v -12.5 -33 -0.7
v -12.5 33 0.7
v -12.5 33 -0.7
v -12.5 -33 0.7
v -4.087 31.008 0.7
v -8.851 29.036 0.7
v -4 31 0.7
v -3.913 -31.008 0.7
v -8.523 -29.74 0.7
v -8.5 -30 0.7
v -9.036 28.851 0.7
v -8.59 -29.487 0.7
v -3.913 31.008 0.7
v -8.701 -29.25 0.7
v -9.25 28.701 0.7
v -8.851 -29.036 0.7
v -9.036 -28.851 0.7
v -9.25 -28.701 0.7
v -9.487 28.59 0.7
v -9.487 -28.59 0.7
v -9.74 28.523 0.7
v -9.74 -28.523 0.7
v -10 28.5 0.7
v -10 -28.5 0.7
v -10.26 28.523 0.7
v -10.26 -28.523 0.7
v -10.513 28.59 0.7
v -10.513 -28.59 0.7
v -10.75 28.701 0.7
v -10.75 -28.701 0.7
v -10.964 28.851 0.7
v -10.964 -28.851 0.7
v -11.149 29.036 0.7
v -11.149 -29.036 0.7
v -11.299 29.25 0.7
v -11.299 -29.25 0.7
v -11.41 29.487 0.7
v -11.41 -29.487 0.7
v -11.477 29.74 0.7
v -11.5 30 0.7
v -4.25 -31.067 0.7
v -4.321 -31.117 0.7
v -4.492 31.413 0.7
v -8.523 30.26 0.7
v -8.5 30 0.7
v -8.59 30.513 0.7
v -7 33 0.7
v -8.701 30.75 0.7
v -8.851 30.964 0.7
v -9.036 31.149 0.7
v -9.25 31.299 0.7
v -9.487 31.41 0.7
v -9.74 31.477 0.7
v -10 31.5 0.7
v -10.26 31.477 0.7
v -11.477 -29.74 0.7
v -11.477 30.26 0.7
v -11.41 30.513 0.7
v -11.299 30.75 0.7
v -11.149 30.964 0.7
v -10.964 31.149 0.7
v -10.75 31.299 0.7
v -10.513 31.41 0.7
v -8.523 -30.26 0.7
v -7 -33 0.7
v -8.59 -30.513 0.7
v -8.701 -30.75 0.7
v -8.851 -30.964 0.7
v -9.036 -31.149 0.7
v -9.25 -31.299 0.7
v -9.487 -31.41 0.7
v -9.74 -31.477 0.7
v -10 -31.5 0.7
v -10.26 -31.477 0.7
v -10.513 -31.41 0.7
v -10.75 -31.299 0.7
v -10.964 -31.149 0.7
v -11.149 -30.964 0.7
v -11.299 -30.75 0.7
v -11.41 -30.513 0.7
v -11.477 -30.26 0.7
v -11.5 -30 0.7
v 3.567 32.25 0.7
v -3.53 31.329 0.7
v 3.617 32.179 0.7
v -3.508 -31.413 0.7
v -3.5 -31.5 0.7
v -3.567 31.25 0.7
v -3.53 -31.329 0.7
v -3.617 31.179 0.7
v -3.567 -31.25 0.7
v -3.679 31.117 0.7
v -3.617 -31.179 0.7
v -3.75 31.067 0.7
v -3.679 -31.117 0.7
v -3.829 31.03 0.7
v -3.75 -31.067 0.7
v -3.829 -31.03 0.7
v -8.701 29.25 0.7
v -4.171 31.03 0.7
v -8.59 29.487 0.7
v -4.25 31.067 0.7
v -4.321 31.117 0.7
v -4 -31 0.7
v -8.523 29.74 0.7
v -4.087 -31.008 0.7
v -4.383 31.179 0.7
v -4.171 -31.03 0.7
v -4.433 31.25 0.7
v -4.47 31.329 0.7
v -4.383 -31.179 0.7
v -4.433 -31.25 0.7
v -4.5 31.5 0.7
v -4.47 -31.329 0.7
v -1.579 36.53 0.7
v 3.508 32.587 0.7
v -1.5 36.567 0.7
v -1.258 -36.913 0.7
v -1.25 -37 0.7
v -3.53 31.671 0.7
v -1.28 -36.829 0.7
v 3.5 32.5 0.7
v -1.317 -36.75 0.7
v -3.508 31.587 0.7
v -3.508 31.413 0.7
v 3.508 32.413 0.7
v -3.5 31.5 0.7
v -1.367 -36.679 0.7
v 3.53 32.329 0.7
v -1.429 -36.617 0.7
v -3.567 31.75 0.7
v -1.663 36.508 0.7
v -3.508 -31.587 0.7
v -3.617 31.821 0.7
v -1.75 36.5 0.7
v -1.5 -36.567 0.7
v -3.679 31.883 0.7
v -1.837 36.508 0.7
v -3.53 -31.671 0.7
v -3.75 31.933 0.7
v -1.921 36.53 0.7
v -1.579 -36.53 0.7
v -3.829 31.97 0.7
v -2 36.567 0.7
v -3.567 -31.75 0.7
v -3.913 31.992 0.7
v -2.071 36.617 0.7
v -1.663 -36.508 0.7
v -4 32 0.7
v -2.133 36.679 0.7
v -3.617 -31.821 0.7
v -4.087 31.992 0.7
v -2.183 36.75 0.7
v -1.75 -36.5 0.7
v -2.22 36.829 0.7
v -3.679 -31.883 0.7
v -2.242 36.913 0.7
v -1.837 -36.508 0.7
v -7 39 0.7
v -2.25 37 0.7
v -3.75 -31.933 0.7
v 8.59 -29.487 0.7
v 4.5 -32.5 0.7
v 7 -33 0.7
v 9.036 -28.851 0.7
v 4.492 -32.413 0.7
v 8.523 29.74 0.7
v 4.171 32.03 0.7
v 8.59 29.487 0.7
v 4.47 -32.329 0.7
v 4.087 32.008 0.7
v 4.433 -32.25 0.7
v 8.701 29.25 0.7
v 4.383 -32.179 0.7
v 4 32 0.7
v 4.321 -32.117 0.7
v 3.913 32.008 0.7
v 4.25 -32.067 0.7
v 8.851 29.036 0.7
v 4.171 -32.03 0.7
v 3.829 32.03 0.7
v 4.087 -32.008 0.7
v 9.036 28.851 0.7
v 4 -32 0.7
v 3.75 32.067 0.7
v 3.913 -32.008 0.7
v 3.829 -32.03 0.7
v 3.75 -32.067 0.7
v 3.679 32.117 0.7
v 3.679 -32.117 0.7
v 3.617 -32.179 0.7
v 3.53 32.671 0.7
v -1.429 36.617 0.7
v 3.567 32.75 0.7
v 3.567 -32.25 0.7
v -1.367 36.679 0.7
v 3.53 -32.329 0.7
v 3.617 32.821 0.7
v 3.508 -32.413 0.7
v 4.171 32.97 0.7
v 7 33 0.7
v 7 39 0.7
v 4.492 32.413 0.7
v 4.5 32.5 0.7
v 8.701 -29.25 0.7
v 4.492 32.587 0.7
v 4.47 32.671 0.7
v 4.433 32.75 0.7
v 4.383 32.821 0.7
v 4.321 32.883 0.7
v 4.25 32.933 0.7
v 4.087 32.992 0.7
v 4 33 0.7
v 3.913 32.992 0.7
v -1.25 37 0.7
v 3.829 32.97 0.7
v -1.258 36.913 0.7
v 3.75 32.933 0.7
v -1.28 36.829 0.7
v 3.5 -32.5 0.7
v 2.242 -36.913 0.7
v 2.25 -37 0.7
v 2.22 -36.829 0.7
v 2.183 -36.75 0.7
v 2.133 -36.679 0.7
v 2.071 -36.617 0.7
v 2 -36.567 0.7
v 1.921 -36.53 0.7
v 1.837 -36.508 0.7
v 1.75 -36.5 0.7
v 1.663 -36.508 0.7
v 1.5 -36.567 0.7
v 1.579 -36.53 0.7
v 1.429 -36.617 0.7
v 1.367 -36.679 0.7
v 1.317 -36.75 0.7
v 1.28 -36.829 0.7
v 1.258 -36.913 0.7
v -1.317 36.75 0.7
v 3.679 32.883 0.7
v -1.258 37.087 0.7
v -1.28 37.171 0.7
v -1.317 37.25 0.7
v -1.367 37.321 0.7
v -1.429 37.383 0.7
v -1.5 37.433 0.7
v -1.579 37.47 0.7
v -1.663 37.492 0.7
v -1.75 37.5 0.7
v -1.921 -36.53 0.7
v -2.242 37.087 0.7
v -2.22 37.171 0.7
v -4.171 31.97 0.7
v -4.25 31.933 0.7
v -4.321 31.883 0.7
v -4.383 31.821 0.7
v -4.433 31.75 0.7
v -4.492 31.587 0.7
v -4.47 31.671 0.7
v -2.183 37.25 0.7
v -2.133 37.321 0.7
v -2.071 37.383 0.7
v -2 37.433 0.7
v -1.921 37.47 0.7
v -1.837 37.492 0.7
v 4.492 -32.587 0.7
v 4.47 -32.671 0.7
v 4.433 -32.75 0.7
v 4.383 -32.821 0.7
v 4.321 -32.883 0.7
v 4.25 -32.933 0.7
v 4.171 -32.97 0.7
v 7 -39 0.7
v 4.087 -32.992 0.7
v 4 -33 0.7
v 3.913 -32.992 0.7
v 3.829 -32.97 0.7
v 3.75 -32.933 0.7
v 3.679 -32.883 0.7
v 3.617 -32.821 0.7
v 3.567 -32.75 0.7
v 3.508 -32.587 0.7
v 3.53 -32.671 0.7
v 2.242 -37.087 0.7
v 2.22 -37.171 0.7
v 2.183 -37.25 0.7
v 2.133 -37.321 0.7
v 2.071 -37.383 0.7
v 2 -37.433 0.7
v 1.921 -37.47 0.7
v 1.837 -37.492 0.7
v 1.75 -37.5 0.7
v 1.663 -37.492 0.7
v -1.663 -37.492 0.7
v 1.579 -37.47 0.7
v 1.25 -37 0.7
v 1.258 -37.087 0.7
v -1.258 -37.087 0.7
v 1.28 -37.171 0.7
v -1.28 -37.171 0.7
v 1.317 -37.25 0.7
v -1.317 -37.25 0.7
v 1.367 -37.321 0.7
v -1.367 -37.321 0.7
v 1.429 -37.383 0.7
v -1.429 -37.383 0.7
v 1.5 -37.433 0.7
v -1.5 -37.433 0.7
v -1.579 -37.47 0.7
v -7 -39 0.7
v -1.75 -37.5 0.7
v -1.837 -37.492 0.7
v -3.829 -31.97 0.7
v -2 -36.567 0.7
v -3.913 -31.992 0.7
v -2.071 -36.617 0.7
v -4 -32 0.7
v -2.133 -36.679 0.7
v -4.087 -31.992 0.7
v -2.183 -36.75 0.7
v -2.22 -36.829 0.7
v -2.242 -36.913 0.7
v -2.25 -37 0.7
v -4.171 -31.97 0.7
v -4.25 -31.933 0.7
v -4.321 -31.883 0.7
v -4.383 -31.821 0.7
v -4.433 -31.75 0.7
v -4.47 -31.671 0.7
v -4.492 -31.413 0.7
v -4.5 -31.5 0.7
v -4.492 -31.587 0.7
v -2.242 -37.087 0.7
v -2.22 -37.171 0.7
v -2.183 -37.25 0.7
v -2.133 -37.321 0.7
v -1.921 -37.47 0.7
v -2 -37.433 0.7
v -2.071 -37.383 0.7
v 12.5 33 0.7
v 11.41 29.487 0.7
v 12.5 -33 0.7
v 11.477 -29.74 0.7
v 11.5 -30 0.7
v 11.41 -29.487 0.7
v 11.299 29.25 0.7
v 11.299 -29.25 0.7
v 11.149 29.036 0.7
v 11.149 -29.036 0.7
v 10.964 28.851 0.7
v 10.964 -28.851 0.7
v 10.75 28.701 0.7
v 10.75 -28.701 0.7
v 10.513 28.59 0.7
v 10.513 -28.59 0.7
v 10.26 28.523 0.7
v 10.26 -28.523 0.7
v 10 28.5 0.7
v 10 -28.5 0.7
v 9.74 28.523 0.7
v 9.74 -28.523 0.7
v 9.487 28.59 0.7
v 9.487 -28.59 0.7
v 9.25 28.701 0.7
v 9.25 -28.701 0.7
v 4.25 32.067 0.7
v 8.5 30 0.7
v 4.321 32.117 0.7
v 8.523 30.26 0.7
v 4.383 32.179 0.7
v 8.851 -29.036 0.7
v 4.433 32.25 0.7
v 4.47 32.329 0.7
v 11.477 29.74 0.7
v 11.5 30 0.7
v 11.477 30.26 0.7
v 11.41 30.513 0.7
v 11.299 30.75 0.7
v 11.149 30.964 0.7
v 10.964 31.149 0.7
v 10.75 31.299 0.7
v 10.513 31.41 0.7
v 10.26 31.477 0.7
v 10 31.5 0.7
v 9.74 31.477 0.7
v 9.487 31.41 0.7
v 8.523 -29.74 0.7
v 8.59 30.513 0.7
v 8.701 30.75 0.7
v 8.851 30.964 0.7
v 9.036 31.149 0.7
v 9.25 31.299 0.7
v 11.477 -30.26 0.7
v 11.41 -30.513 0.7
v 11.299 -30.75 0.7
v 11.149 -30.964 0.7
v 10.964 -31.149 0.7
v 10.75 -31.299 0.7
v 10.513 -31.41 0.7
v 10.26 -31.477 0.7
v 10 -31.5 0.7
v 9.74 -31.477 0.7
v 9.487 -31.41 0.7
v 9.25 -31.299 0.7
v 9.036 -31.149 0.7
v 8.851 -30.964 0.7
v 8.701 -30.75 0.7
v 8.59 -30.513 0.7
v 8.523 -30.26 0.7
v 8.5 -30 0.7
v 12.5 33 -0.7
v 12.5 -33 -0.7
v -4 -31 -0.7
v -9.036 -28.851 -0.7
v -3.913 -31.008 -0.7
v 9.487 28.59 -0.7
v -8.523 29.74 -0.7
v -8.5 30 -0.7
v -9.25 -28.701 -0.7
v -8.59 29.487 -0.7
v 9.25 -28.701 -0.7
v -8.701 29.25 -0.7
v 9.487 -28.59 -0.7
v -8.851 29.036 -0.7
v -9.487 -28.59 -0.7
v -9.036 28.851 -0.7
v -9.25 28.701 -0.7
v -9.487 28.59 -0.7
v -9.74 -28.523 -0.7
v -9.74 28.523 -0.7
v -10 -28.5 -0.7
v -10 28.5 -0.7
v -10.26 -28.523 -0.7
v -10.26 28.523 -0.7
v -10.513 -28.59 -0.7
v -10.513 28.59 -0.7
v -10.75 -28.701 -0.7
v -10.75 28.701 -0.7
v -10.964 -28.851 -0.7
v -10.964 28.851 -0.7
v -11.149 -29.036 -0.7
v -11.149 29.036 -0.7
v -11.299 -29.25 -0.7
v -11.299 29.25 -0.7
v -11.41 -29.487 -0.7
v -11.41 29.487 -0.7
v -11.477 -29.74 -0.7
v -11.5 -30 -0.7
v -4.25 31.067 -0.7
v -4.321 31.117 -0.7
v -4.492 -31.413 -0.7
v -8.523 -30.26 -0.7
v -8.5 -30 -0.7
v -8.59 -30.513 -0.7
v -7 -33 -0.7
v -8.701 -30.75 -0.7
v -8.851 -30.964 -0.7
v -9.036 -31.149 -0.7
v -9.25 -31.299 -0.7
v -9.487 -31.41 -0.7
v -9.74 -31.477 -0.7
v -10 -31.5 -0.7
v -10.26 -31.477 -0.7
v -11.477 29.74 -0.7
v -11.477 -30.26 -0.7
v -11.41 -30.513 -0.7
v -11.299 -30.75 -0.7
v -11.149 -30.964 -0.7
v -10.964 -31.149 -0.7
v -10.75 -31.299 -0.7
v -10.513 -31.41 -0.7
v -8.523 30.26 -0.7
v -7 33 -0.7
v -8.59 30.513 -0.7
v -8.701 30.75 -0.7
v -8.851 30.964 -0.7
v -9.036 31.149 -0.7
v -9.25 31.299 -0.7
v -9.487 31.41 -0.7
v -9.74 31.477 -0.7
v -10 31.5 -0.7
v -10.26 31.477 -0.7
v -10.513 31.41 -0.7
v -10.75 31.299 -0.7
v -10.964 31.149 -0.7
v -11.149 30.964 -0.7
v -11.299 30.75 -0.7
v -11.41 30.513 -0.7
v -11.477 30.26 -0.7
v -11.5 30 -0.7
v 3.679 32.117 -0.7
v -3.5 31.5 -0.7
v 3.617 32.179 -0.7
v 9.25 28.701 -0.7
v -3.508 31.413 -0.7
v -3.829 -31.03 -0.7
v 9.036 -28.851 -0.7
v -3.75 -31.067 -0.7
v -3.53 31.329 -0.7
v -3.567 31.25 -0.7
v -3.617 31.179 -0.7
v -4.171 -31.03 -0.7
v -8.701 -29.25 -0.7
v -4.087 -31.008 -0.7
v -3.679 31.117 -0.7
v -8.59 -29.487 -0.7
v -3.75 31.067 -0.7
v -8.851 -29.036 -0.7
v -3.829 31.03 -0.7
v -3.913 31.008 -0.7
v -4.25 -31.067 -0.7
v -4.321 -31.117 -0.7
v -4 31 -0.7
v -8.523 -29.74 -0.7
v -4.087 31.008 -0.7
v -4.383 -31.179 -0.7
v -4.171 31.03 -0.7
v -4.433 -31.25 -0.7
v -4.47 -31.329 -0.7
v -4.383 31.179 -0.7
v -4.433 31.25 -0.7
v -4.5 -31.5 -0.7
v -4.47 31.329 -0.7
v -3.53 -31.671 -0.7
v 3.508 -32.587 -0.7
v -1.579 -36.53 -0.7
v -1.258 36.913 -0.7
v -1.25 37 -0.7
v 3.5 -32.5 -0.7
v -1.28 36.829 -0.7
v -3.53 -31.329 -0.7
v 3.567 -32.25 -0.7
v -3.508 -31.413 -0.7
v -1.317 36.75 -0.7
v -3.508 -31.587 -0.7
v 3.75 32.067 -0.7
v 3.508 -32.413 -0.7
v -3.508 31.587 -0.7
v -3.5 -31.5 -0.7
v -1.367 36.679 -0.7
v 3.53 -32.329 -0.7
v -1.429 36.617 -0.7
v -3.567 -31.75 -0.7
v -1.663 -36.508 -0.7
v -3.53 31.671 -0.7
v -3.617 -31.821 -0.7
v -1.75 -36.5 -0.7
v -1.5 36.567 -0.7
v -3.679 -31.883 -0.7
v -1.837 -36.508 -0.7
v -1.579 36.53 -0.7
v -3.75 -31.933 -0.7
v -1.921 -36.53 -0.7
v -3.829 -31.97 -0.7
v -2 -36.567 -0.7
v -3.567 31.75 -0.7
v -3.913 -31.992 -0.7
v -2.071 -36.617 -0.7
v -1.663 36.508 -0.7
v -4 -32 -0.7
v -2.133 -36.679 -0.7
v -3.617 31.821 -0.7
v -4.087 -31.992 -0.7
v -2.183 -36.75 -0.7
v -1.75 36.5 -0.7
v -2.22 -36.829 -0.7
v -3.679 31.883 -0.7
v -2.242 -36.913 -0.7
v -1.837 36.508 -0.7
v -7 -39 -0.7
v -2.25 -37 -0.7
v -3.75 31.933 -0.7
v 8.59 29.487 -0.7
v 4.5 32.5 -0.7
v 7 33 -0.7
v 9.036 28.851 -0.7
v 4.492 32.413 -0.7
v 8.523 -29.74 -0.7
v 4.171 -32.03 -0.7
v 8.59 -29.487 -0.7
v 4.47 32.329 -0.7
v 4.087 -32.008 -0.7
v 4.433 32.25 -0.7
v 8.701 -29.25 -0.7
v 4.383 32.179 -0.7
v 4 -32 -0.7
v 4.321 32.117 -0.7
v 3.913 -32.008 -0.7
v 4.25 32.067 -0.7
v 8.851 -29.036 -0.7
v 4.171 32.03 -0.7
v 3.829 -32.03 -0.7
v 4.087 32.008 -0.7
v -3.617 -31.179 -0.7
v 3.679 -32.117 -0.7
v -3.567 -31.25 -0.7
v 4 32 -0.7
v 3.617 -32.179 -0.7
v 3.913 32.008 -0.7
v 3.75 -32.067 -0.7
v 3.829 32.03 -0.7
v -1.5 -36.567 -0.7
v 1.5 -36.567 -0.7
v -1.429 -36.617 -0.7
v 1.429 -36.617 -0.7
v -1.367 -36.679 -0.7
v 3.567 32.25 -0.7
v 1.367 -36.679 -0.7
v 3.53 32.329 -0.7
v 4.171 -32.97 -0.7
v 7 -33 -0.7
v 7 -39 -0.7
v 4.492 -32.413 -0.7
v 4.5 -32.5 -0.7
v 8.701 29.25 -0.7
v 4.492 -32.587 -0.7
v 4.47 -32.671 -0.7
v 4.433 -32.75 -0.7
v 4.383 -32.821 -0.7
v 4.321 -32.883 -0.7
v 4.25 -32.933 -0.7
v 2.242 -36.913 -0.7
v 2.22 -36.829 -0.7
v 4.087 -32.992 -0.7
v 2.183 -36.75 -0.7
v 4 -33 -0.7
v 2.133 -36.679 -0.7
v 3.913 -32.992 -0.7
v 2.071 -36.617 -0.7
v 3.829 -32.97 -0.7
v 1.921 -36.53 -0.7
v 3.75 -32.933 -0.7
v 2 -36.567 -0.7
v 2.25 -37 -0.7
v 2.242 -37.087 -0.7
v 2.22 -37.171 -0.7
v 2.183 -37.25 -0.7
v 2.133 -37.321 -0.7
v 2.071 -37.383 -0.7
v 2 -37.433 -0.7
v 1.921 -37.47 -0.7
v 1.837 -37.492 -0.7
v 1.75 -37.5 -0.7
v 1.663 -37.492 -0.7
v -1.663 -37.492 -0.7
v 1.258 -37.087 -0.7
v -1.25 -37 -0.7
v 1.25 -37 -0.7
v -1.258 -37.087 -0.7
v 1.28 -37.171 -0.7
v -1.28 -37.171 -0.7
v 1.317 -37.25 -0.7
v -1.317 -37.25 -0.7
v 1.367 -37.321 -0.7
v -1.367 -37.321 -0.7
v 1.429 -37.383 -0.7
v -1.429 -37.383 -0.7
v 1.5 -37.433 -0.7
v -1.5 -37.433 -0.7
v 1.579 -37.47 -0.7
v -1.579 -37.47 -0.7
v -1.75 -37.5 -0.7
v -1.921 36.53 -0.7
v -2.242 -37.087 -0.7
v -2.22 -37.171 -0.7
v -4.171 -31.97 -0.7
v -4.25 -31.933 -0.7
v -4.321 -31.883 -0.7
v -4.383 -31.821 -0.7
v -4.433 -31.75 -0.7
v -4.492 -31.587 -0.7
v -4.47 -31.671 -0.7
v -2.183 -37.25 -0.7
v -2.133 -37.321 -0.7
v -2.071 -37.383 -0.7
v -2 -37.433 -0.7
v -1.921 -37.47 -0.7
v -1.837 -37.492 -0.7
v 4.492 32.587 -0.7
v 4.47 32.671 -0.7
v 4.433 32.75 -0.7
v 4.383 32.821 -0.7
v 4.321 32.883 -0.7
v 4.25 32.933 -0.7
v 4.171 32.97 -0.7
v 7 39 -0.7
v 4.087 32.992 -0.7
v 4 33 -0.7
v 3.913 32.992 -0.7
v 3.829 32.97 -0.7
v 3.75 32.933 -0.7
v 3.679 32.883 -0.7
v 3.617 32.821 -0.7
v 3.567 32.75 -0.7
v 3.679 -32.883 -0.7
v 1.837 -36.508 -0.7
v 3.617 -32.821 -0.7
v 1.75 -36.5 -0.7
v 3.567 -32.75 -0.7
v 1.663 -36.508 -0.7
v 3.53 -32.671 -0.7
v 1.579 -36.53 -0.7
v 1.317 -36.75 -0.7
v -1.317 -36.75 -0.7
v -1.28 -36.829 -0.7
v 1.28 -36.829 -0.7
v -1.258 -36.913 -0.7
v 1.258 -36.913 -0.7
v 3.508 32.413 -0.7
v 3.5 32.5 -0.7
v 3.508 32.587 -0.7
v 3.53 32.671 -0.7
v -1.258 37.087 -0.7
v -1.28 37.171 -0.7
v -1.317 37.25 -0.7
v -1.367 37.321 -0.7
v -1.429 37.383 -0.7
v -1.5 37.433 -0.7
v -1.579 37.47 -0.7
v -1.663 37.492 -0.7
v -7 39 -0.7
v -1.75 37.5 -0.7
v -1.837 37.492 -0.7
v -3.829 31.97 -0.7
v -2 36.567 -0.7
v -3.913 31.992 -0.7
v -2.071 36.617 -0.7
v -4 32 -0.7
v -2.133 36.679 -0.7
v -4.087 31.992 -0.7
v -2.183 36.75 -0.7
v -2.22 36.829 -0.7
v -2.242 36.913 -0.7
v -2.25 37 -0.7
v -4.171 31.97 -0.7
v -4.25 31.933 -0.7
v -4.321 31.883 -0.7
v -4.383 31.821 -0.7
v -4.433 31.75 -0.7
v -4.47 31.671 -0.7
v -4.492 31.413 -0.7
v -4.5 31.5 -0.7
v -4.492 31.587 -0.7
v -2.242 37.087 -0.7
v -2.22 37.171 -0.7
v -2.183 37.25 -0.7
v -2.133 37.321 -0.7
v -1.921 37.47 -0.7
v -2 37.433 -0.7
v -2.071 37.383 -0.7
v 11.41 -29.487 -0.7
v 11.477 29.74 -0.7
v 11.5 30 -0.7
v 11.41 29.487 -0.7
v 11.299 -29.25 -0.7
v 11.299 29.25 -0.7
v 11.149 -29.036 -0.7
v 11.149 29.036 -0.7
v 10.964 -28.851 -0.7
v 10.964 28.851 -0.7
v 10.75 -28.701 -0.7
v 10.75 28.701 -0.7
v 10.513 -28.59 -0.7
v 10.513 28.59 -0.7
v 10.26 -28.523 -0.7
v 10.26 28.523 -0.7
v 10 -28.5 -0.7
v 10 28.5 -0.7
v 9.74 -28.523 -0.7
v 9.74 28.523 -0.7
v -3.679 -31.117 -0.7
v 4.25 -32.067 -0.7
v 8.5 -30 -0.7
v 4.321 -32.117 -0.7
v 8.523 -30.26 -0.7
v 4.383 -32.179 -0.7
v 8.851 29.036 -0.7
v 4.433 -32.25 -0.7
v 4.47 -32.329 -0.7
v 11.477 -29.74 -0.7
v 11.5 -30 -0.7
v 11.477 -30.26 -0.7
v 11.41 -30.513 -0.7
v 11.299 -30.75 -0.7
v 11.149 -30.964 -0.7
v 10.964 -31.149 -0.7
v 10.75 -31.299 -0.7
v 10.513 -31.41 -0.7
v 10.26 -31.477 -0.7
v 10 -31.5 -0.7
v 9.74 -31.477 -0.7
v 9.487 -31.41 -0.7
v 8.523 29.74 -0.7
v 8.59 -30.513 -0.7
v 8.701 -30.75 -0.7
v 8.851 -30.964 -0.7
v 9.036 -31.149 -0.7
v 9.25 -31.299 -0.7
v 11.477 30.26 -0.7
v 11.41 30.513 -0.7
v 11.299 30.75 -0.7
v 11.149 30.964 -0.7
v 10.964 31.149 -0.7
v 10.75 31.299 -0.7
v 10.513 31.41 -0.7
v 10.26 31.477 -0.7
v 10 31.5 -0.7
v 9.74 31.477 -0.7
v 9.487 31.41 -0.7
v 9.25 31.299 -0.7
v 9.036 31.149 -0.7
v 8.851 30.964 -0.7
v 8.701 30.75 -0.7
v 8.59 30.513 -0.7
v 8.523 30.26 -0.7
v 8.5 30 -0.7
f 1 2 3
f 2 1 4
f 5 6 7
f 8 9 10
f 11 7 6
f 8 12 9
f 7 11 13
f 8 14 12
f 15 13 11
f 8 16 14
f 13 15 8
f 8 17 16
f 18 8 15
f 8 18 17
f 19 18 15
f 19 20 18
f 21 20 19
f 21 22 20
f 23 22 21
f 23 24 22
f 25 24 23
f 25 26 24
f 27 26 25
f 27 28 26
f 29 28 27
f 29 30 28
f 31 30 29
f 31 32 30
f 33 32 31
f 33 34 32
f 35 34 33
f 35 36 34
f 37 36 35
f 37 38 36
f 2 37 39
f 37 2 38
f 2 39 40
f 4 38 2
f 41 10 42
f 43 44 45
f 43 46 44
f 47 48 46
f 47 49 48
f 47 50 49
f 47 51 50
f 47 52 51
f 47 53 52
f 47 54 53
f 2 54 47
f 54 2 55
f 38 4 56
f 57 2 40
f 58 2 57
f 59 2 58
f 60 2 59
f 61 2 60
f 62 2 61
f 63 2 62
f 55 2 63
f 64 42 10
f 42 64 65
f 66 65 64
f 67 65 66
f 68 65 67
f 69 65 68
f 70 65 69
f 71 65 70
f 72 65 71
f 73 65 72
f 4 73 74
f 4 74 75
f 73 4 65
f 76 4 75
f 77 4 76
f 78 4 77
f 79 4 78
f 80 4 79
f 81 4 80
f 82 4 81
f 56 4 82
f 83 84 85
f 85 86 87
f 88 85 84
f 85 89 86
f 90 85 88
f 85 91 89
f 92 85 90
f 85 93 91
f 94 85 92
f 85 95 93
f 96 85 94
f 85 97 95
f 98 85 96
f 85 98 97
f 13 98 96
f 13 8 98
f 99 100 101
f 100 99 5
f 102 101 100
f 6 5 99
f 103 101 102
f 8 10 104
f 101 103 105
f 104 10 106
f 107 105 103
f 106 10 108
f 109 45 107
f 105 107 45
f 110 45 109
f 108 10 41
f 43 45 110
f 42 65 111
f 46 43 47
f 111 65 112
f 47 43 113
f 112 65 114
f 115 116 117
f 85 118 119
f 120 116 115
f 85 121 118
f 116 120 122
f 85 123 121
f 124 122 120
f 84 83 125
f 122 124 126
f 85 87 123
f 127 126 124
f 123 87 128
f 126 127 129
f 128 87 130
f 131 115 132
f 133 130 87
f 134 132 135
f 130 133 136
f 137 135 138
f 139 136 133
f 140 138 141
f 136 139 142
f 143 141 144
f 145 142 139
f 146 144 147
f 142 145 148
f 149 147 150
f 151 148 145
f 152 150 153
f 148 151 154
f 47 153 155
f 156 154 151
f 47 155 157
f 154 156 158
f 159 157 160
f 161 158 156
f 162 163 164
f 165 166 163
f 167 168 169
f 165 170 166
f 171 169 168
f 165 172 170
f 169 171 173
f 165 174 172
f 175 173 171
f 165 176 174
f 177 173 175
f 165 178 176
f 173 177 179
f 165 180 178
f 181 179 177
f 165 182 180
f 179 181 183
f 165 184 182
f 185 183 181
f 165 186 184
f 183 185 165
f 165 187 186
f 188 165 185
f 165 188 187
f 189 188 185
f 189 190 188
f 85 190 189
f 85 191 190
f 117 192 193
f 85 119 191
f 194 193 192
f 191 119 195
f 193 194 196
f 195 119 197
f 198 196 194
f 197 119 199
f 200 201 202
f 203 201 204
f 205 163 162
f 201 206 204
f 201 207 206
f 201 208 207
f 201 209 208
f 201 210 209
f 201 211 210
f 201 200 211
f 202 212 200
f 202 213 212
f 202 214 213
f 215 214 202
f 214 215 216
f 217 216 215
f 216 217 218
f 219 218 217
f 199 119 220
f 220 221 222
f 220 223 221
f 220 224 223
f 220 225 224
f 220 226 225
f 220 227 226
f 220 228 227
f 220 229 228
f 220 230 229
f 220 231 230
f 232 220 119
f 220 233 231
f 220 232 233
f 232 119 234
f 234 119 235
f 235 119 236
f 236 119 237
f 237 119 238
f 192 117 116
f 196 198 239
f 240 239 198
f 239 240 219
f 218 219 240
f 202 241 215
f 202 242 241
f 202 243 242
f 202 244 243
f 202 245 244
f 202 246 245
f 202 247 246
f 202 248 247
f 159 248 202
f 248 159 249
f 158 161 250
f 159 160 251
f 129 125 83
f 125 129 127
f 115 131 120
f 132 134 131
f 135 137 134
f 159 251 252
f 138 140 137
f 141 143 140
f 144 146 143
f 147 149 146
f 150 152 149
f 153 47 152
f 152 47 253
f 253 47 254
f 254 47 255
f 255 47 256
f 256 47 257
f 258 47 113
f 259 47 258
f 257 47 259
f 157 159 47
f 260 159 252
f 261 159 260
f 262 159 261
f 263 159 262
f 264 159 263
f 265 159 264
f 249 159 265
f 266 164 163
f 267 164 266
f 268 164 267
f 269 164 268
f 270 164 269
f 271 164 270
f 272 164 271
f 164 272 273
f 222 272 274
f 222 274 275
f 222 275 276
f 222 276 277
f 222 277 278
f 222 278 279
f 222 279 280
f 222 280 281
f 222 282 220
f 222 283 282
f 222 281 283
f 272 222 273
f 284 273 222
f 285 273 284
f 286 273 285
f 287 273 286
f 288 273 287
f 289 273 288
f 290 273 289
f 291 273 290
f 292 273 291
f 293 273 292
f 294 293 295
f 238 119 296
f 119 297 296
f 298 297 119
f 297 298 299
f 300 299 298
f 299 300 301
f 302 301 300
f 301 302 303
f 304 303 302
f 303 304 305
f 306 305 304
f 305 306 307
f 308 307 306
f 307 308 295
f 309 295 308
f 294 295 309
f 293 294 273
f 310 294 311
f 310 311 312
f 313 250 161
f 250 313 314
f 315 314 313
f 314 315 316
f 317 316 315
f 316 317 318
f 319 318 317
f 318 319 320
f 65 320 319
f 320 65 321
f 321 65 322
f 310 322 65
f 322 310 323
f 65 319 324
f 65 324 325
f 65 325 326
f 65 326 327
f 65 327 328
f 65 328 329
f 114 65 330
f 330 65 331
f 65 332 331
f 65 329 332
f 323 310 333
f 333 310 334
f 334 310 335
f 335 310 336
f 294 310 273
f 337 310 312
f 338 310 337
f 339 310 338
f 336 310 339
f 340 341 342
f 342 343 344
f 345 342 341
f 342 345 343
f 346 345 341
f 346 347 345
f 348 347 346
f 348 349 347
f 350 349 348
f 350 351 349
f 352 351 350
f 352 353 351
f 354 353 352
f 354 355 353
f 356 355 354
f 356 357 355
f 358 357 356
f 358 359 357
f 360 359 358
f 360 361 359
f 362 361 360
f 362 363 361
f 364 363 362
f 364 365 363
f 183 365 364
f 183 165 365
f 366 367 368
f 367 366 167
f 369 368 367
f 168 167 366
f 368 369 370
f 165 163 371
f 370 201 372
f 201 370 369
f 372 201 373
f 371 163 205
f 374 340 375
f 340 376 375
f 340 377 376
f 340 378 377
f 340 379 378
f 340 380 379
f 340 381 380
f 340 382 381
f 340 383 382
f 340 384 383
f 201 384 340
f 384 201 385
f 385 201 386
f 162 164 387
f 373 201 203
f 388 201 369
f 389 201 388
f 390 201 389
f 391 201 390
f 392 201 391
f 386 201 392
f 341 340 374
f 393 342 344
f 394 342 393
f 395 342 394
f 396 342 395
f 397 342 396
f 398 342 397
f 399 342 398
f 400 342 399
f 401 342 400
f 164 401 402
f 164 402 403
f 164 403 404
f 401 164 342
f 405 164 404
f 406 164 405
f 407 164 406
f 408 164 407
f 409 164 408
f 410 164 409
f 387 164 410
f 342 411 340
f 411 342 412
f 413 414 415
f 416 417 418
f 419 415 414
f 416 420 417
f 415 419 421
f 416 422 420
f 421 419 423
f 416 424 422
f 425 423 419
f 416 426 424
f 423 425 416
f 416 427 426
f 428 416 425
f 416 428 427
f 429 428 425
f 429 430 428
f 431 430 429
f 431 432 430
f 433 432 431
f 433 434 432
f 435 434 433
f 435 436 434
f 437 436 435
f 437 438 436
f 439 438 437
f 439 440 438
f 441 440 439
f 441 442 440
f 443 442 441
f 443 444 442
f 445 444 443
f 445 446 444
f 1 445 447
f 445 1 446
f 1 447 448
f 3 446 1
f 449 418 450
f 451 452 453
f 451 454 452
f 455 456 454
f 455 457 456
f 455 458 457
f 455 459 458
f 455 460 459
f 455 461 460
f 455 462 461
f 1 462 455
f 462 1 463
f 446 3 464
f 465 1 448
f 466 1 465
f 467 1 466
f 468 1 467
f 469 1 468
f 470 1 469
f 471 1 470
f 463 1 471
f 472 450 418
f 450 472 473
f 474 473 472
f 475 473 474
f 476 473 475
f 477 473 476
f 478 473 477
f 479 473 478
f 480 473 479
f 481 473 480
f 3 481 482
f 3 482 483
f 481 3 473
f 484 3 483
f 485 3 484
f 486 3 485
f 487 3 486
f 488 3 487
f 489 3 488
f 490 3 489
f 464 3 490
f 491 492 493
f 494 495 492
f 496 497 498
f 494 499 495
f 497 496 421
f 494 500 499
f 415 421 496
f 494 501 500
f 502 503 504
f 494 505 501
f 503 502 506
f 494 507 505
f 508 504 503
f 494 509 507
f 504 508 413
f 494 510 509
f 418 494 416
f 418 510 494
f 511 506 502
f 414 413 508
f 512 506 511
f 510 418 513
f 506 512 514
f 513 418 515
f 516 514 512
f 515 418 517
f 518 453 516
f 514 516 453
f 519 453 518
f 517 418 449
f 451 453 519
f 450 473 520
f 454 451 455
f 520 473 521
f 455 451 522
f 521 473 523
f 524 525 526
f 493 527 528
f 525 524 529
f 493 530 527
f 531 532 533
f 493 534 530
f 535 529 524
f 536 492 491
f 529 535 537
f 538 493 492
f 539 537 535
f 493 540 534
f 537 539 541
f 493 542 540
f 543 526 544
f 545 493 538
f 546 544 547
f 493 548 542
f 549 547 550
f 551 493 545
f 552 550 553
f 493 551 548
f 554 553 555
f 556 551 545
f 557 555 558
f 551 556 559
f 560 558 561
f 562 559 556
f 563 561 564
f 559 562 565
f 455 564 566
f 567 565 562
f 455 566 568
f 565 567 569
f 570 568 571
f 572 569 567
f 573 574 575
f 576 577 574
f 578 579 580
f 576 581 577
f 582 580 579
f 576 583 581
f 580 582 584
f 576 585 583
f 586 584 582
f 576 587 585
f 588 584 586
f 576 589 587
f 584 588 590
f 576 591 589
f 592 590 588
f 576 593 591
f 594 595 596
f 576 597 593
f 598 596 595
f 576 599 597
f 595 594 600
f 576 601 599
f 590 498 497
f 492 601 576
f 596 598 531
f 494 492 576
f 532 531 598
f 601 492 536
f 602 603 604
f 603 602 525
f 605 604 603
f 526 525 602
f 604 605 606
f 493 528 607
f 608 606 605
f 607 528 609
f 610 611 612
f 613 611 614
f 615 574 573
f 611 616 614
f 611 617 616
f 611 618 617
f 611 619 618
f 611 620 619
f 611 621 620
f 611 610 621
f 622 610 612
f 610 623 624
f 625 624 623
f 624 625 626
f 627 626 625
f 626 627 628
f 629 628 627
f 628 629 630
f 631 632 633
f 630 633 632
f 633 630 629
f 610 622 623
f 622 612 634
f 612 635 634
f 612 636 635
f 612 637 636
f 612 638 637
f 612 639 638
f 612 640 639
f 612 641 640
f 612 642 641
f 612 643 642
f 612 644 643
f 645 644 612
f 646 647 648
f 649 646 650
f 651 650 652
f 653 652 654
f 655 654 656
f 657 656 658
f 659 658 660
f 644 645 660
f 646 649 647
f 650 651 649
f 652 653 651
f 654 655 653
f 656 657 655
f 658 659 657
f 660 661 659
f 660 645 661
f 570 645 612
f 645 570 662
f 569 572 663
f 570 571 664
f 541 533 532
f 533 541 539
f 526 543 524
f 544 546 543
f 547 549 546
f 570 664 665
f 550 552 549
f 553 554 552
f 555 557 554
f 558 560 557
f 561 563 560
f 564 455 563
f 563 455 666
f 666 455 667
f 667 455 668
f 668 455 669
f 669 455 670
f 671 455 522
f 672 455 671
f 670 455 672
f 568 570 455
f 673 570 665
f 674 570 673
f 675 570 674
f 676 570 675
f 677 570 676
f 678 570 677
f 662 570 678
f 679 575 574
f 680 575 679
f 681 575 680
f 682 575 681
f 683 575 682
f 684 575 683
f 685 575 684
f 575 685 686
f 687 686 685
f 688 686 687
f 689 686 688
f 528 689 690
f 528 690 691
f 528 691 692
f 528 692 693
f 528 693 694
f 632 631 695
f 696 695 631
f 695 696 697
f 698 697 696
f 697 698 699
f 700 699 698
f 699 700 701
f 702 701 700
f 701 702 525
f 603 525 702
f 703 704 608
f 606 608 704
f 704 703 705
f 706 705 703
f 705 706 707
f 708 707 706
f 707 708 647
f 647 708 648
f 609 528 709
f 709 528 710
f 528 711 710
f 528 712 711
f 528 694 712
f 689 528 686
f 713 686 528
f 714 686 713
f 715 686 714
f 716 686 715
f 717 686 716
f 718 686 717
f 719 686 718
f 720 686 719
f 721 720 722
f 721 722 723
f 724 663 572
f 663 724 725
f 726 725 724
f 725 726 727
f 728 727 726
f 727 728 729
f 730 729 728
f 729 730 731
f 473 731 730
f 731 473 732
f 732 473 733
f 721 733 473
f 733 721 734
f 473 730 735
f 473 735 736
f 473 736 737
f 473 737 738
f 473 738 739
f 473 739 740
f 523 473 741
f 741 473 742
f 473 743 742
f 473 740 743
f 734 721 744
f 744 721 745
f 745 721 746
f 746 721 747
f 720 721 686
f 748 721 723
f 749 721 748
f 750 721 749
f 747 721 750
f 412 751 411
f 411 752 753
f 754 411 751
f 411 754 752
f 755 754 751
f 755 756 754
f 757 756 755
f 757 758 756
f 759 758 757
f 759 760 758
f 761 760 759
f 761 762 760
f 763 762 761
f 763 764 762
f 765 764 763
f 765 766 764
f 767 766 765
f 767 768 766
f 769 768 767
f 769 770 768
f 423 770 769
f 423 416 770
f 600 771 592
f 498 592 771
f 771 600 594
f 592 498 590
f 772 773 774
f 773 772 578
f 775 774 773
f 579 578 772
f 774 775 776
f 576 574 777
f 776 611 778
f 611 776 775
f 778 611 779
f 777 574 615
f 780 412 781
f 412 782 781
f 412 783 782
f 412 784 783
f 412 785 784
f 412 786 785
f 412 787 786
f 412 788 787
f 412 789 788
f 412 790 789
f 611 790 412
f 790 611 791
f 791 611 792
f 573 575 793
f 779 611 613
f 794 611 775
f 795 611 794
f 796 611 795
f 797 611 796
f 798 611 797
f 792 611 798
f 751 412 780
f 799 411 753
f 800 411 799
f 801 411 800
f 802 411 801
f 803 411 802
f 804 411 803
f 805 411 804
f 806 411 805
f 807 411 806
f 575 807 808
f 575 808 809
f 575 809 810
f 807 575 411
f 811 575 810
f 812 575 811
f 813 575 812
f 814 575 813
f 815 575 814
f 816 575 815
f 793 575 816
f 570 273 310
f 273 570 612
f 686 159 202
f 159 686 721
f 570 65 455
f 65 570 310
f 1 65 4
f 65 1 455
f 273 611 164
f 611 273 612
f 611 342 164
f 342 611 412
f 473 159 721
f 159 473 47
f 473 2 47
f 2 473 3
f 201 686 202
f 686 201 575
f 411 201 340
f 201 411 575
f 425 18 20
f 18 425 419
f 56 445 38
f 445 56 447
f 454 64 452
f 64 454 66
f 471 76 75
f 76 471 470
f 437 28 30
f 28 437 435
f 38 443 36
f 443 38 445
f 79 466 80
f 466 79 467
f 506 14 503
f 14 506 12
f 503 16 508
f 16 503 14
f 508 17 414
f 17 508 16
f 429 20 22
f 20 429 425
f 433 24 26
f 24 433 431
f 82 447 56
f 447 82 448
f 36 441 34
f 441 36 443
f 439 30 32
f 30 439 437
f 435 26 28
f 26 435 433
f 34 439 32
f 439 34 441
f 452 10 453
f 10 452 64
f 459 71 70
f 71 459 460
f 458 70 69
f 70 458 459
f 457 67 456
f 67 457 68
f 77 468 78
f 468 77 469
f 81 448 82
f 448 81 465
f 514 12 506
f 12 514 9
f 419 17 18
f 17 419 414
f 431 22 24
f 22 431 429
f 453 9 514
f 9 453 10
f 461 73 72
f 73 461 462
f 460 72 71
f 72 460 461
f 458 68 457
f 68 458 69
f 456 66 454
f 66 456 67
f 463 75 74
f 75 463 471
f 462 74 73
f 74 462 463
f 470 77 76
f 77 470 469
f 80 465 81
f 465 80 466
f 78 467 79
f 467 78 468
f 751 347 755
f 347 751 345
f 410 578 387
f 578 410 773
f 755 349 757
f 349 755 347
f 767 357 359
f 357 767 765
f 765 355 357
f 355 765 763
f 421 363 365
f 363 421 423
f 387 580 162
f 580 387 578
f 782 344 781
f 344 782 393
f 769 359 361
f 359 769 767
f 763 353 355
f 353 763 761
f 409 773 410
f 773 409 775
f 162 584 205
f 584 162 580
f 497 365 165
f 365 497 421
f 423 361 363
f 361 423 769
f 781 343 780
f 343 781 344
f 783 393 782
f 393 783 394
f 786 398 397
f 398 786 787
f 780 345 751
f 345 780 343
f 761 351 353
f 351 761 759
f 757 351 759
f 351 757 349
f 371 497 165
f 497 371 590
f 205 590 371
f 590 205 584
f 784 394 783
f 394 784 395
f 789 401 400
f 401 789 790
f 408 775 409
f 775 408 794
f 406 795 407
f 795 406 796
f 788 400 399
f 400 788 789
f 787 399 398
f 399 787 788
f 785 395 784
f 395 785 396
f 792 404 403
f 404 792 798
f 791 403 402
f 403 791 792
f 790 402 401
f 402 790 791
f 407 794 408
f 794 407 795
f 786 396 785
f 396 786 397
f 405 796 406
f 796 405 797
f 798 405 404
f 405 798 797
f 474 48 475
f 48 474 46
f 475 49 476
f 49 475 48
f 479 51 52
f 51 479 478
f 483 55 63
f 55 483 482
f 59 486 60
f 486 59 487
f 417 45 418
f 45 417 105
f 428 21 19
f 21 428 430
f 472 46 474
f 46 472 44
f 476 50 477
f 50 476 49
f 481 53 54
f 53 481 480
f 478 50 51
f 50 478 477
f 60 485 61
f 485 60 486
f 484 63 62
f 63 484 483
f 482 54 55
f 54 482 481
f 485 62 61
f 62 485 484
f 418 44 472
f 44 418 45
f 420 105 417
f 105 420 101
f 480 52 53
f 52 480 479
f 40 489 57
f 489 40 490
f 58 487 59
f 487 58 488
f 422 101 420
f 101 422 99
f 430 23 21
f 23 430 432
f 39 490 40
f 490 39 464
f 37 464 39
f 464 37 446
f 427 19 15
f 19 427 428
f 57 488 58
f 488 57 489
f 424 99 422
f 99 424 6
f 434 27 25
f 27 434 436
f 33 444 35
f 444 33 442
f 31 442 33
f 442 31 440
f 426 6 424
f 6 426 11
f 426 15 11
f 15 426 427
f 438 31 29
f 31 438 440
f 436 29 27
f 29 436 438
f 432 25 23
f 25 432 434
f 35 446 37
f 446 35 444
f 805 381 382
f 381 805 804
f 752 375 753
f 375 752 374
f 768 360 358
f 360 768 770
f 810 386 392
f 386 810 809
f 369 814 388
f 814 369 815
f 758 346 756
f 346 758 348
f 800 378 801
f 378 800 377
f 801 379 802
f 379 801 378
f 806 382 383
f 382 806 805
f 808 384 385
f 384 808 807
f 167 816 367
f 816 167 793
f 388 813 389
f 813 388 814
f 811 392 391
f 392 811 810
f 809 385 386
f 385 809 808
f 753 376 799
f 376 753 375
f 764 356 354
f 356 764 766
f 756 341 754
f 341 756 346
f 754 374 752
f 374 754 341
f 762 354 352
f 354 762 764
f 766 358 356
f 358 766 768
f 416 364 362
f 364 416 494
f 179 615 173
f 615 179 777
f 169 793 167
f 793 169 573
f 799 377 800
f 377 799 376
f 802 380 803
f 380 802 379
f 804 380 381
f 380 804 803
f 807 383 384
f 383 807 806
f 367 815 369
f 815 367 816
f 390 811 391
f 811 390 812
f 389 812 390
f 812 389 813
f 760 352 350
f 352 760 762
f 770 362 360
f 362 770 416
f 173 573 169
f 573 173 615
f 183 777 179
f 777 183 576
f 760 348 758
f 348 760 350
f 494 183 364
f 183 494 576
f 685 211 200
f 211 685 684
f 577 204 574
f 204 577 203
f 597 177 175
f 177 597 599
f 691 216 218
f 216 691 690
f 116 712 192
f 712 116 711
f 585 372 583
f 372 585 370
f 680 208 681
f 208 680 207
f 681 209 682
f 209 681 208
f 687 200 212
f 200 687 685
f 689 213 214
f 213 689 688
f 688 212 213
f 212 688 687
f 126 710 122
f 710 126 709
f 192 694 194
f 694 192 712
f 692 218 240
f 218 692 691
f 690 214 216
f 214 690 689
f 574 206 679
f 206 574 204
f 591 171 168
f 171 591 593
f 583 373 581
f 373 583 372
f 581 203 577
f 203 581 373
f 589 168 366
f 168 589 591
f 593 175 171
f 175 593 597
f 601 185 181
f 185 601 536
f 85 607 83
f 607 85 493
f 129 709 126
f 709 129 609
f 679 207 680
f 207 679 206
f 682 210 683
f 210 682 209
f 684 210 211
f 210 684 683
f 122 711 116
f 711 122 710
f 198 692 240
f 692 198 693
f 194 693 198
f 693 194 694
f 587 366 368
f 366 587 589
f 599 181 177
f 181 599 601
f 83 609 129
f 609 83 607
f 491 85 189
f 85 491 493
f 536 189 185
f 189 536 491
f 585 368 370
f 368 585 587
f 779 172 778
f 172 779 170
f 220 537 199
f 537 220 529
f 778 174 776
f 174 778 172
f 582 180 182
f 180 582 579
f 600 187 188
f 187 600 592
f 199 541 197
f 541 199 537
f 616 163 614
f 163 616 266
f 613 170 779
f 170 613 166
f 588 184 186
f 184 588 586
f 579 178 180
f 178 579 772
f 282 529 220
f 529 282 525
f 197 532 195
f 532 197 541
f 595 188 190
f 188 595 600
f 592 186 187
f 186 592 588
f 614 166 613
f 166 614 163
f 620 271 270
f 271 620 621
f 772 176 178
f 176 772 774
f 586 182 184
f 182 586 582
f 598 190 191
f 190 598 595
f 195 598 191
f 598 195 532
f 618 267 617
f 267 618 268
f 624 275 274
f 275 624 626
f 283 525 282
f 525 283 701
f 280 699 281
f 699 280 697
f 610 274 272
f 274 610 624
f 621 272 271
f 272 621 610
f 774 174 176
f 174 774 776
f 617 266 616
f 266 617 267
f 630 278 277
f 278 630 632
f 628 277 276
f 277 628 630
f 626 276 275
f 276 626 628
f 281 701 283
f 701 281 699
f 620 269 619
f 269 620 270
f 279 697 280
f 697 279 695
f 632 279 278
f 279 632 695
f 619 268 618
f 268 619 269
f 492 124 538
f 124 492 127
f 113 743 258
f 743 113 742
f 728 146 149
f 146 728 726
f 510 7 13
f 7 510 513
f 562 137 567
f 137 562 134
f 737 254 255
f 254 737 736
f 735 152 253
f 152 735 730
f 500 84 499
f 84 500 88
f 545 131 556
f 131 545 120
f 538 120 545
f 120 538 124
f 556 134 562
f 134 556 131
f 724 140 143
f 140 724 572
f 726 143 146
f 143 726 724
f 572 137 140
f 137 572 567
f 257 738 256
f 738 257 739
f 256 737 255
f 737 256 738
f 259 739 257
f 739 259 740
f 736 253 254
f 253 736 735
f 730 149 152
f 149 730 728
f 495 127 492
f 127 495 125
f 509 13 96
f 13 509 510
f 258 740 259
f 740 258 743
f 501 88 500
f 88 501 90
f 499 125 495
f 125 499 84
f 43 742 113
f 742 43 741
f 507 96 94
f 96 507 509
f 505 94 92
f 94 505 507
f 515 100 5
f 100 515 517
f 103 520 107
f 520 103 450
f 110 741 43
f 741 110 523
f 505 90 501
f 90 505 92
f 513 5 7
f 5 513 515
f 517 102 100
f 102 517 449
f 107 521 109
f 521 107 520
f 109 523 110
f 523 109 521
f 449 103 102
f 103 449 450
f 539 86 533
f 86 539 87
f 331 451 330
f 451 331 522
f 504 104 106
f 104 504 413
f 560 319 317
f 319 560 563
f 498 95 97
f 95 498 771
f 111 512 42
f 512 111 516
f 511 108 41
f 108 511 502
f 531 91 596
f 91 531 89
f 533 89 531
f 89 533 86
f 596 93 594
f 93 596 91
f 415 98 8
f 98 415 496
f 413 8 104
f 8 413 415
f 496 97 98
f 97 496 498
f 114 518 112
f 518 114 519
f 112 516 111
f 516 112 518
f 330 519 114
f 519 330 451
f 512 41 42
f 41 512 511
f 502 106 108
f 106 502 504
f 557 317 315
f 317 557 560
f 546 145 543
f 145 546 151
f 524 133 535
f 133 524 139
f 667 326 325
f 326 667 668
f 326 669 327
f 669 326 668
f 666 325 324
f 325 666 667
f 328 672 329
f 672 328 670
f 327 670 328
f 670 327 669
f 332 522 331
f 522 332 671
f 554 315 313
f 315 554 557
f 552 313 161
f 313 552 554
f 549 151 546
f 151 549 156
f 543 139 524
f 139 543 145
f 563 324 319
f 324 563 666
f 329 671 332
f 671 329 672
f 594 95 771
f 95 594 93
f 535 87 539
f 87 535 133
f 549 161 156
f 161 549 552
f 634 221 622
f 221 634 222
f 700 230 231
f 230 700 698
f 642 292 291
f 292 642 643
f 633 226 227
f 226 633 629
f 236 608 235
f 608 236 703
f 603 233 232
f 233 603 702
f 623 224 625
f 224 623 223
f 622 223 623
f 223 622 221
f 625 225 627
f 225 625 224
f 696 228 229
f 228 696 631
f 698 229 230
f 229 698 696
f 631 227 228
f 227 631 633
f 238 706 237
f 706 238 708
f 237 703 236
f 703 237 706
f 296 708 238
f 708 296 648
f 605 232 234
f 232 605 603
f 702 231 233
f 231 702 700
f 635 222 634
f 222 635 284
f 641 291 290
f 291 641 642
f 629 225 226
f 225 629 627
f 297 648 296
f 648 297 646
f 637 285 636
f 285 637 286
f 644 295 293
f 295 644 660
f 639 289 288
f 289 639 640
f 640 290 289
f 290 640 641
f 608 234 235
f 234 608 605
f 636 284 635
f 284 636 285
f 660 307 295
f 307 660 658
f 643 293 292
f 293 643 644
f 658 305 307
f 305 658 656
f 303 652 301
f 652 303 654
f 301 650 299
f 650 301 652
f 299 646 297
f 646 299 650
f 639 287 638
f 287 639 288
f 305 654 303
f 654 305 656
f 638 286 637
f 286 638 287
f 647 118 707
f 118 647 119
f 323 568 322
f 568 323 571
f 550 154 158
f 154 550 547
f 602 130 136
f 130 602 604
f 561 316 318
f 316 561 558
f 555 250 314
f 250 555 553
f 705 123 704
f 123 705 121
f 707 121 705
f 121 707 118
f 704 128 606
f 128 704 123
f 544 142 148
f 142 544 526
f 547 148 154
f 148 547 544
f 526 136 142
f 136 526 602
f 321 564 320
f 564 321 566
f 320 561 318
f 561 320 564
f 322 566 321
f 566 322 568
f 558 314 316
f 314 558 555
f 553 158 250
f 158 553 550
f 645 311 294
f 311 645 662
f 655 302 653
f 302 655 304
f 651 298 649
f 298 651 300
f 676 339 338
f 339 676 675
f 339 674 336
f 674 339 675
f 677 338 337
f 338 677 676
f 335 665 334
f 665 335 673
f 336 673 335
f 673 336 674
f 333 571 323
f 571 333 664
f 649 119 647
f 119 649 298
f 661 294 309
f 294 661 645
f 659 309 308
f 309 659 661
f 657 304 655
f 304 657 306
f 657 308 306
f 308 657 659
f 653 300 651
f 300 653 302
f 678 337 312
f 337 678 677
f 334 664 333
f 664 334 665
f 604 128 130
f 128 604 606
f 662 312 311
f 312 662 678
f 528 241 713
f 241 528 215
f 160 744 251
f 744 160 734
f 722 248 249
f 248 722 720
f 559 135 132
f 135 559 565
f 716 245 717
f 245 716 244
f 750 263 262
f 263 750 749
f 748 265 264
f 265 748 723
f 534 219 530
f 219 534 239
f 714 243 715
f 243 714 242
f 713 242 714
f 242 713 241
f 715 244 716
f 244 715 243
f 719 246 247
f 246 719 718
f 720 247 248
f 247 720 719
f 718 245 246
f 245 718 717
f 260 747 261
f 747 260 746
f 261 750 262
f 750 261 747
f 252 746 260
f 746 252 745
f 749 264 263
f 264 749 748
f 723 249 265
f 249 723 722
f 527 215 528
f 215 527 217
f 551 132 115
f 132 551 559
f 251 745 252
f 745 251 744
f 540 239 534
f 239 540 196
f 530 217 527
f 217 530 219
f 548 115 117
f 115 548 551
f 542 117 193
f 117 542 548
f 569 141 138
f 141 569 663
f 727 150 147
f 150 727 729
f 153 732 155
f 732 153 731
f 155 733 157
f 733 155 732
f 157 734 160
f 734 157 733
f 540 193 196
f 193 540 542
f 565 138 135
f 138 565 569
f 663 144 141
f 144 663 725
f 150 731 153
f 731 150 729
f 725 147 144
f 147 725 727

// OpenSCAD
resol = 36;

difference () {

    cube ([25,78,1.4], center=true);

    translate ([-12,-38,0]) cube ([10,10,2], center=true);
    translate ([12,-38,0]) cube ([10,10,2], center=true);
    translate ([-12,38,0]) cube ([10,10,2], center=true);
    translate ([12,38,0]) cube ([10,10,2], center=true);

    
    translate ([-10,-30,0]) cylinder(h=10, r=3/2, center = true, $fn = resol);
    translate ([10,-30,0]) cylinder(h=10, r=3/2, center = true, $fn = resol);
    translate ([-10,30,0]) cylinder(h=10, r=3/2, center = true, $fn = resol);
    translate ([10,30,0]) cylinder(h=10, r=3/2, center = true, $fn = resol);

    translate ([4,65/2,0]) cylinder(h=10, r=1/2, center = true, $fn = resol);
    translate ([4,-65/2,0]) cylinder(h=10, r=1/2, center = true, $fn = resol);

    translate ([-4,63/2,0]) cylinder(h=10, r=1/2, center = true, $fn = resol);
    translate ([-4,-63/2,0]) cylinder(h=10, r=1/2, center = true, $fn = resol);

    translate ([3.5/2,-74/2,0]) cylinder(h=10, r=1/2, center = true, $fn = resol);
    translate ([-3.5/2,-74/2,0]) cylinder(h=10, r=1/2, center = true, $fn = resol);
    translate ([-3.5/2,74/2,0]) cylinder(h=10, r=1/2, center = true, $fn = resol);


}
